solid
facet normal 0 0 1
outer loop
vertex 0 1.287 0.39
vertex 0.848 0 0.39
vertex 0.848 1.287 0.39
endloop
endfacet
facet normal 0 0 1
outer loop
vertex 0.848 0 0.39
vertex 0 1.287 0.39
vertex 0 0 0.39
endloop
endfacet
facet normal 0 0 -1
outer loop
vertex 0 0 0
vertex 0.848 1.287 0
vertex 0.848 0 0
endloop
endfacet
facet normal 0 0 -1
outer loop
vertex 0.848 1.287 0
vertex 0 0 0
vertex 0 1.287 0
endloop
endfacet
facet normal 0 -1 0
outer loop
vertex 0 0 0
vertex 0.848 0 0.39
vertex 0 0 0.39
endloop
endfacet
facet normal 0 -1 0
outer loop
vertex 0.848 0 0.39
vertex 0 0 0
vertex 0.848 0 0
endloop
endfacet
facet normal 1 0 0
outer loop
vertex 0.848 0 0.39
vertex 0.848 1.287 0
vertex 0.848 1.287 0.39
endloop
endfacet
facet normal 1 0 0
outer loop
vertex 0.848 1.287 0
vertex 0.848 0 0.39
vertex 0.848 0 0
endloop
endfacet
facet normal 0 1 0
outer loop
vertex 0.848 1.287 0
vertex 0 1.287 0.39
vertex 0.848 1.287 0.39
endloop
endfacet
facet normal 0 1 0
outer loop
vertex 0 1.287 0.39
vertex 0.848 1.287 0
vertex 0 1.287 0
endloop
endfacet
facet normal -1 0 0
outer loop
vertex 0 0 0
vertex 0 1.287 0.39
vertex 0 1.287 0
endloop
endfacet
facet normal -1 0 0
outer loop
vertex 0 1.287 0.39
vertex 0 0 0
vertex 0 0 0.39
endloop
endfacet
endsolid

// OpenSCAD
/* Warning, this is a very basic generator with a lot of approximation 
input data : [WLCSP, EMB, 0.848x1.287x0.39mm, 4, , A, C04-21211A]
generated by com.zoubworld.electronics.cad.model3d.Basic
Date : Sun Feb 15 10:50:49 CET 2026
*/

//body
color("black")
translate([0,0,0])
cube([0.848,1.287,0.39], center=false);
